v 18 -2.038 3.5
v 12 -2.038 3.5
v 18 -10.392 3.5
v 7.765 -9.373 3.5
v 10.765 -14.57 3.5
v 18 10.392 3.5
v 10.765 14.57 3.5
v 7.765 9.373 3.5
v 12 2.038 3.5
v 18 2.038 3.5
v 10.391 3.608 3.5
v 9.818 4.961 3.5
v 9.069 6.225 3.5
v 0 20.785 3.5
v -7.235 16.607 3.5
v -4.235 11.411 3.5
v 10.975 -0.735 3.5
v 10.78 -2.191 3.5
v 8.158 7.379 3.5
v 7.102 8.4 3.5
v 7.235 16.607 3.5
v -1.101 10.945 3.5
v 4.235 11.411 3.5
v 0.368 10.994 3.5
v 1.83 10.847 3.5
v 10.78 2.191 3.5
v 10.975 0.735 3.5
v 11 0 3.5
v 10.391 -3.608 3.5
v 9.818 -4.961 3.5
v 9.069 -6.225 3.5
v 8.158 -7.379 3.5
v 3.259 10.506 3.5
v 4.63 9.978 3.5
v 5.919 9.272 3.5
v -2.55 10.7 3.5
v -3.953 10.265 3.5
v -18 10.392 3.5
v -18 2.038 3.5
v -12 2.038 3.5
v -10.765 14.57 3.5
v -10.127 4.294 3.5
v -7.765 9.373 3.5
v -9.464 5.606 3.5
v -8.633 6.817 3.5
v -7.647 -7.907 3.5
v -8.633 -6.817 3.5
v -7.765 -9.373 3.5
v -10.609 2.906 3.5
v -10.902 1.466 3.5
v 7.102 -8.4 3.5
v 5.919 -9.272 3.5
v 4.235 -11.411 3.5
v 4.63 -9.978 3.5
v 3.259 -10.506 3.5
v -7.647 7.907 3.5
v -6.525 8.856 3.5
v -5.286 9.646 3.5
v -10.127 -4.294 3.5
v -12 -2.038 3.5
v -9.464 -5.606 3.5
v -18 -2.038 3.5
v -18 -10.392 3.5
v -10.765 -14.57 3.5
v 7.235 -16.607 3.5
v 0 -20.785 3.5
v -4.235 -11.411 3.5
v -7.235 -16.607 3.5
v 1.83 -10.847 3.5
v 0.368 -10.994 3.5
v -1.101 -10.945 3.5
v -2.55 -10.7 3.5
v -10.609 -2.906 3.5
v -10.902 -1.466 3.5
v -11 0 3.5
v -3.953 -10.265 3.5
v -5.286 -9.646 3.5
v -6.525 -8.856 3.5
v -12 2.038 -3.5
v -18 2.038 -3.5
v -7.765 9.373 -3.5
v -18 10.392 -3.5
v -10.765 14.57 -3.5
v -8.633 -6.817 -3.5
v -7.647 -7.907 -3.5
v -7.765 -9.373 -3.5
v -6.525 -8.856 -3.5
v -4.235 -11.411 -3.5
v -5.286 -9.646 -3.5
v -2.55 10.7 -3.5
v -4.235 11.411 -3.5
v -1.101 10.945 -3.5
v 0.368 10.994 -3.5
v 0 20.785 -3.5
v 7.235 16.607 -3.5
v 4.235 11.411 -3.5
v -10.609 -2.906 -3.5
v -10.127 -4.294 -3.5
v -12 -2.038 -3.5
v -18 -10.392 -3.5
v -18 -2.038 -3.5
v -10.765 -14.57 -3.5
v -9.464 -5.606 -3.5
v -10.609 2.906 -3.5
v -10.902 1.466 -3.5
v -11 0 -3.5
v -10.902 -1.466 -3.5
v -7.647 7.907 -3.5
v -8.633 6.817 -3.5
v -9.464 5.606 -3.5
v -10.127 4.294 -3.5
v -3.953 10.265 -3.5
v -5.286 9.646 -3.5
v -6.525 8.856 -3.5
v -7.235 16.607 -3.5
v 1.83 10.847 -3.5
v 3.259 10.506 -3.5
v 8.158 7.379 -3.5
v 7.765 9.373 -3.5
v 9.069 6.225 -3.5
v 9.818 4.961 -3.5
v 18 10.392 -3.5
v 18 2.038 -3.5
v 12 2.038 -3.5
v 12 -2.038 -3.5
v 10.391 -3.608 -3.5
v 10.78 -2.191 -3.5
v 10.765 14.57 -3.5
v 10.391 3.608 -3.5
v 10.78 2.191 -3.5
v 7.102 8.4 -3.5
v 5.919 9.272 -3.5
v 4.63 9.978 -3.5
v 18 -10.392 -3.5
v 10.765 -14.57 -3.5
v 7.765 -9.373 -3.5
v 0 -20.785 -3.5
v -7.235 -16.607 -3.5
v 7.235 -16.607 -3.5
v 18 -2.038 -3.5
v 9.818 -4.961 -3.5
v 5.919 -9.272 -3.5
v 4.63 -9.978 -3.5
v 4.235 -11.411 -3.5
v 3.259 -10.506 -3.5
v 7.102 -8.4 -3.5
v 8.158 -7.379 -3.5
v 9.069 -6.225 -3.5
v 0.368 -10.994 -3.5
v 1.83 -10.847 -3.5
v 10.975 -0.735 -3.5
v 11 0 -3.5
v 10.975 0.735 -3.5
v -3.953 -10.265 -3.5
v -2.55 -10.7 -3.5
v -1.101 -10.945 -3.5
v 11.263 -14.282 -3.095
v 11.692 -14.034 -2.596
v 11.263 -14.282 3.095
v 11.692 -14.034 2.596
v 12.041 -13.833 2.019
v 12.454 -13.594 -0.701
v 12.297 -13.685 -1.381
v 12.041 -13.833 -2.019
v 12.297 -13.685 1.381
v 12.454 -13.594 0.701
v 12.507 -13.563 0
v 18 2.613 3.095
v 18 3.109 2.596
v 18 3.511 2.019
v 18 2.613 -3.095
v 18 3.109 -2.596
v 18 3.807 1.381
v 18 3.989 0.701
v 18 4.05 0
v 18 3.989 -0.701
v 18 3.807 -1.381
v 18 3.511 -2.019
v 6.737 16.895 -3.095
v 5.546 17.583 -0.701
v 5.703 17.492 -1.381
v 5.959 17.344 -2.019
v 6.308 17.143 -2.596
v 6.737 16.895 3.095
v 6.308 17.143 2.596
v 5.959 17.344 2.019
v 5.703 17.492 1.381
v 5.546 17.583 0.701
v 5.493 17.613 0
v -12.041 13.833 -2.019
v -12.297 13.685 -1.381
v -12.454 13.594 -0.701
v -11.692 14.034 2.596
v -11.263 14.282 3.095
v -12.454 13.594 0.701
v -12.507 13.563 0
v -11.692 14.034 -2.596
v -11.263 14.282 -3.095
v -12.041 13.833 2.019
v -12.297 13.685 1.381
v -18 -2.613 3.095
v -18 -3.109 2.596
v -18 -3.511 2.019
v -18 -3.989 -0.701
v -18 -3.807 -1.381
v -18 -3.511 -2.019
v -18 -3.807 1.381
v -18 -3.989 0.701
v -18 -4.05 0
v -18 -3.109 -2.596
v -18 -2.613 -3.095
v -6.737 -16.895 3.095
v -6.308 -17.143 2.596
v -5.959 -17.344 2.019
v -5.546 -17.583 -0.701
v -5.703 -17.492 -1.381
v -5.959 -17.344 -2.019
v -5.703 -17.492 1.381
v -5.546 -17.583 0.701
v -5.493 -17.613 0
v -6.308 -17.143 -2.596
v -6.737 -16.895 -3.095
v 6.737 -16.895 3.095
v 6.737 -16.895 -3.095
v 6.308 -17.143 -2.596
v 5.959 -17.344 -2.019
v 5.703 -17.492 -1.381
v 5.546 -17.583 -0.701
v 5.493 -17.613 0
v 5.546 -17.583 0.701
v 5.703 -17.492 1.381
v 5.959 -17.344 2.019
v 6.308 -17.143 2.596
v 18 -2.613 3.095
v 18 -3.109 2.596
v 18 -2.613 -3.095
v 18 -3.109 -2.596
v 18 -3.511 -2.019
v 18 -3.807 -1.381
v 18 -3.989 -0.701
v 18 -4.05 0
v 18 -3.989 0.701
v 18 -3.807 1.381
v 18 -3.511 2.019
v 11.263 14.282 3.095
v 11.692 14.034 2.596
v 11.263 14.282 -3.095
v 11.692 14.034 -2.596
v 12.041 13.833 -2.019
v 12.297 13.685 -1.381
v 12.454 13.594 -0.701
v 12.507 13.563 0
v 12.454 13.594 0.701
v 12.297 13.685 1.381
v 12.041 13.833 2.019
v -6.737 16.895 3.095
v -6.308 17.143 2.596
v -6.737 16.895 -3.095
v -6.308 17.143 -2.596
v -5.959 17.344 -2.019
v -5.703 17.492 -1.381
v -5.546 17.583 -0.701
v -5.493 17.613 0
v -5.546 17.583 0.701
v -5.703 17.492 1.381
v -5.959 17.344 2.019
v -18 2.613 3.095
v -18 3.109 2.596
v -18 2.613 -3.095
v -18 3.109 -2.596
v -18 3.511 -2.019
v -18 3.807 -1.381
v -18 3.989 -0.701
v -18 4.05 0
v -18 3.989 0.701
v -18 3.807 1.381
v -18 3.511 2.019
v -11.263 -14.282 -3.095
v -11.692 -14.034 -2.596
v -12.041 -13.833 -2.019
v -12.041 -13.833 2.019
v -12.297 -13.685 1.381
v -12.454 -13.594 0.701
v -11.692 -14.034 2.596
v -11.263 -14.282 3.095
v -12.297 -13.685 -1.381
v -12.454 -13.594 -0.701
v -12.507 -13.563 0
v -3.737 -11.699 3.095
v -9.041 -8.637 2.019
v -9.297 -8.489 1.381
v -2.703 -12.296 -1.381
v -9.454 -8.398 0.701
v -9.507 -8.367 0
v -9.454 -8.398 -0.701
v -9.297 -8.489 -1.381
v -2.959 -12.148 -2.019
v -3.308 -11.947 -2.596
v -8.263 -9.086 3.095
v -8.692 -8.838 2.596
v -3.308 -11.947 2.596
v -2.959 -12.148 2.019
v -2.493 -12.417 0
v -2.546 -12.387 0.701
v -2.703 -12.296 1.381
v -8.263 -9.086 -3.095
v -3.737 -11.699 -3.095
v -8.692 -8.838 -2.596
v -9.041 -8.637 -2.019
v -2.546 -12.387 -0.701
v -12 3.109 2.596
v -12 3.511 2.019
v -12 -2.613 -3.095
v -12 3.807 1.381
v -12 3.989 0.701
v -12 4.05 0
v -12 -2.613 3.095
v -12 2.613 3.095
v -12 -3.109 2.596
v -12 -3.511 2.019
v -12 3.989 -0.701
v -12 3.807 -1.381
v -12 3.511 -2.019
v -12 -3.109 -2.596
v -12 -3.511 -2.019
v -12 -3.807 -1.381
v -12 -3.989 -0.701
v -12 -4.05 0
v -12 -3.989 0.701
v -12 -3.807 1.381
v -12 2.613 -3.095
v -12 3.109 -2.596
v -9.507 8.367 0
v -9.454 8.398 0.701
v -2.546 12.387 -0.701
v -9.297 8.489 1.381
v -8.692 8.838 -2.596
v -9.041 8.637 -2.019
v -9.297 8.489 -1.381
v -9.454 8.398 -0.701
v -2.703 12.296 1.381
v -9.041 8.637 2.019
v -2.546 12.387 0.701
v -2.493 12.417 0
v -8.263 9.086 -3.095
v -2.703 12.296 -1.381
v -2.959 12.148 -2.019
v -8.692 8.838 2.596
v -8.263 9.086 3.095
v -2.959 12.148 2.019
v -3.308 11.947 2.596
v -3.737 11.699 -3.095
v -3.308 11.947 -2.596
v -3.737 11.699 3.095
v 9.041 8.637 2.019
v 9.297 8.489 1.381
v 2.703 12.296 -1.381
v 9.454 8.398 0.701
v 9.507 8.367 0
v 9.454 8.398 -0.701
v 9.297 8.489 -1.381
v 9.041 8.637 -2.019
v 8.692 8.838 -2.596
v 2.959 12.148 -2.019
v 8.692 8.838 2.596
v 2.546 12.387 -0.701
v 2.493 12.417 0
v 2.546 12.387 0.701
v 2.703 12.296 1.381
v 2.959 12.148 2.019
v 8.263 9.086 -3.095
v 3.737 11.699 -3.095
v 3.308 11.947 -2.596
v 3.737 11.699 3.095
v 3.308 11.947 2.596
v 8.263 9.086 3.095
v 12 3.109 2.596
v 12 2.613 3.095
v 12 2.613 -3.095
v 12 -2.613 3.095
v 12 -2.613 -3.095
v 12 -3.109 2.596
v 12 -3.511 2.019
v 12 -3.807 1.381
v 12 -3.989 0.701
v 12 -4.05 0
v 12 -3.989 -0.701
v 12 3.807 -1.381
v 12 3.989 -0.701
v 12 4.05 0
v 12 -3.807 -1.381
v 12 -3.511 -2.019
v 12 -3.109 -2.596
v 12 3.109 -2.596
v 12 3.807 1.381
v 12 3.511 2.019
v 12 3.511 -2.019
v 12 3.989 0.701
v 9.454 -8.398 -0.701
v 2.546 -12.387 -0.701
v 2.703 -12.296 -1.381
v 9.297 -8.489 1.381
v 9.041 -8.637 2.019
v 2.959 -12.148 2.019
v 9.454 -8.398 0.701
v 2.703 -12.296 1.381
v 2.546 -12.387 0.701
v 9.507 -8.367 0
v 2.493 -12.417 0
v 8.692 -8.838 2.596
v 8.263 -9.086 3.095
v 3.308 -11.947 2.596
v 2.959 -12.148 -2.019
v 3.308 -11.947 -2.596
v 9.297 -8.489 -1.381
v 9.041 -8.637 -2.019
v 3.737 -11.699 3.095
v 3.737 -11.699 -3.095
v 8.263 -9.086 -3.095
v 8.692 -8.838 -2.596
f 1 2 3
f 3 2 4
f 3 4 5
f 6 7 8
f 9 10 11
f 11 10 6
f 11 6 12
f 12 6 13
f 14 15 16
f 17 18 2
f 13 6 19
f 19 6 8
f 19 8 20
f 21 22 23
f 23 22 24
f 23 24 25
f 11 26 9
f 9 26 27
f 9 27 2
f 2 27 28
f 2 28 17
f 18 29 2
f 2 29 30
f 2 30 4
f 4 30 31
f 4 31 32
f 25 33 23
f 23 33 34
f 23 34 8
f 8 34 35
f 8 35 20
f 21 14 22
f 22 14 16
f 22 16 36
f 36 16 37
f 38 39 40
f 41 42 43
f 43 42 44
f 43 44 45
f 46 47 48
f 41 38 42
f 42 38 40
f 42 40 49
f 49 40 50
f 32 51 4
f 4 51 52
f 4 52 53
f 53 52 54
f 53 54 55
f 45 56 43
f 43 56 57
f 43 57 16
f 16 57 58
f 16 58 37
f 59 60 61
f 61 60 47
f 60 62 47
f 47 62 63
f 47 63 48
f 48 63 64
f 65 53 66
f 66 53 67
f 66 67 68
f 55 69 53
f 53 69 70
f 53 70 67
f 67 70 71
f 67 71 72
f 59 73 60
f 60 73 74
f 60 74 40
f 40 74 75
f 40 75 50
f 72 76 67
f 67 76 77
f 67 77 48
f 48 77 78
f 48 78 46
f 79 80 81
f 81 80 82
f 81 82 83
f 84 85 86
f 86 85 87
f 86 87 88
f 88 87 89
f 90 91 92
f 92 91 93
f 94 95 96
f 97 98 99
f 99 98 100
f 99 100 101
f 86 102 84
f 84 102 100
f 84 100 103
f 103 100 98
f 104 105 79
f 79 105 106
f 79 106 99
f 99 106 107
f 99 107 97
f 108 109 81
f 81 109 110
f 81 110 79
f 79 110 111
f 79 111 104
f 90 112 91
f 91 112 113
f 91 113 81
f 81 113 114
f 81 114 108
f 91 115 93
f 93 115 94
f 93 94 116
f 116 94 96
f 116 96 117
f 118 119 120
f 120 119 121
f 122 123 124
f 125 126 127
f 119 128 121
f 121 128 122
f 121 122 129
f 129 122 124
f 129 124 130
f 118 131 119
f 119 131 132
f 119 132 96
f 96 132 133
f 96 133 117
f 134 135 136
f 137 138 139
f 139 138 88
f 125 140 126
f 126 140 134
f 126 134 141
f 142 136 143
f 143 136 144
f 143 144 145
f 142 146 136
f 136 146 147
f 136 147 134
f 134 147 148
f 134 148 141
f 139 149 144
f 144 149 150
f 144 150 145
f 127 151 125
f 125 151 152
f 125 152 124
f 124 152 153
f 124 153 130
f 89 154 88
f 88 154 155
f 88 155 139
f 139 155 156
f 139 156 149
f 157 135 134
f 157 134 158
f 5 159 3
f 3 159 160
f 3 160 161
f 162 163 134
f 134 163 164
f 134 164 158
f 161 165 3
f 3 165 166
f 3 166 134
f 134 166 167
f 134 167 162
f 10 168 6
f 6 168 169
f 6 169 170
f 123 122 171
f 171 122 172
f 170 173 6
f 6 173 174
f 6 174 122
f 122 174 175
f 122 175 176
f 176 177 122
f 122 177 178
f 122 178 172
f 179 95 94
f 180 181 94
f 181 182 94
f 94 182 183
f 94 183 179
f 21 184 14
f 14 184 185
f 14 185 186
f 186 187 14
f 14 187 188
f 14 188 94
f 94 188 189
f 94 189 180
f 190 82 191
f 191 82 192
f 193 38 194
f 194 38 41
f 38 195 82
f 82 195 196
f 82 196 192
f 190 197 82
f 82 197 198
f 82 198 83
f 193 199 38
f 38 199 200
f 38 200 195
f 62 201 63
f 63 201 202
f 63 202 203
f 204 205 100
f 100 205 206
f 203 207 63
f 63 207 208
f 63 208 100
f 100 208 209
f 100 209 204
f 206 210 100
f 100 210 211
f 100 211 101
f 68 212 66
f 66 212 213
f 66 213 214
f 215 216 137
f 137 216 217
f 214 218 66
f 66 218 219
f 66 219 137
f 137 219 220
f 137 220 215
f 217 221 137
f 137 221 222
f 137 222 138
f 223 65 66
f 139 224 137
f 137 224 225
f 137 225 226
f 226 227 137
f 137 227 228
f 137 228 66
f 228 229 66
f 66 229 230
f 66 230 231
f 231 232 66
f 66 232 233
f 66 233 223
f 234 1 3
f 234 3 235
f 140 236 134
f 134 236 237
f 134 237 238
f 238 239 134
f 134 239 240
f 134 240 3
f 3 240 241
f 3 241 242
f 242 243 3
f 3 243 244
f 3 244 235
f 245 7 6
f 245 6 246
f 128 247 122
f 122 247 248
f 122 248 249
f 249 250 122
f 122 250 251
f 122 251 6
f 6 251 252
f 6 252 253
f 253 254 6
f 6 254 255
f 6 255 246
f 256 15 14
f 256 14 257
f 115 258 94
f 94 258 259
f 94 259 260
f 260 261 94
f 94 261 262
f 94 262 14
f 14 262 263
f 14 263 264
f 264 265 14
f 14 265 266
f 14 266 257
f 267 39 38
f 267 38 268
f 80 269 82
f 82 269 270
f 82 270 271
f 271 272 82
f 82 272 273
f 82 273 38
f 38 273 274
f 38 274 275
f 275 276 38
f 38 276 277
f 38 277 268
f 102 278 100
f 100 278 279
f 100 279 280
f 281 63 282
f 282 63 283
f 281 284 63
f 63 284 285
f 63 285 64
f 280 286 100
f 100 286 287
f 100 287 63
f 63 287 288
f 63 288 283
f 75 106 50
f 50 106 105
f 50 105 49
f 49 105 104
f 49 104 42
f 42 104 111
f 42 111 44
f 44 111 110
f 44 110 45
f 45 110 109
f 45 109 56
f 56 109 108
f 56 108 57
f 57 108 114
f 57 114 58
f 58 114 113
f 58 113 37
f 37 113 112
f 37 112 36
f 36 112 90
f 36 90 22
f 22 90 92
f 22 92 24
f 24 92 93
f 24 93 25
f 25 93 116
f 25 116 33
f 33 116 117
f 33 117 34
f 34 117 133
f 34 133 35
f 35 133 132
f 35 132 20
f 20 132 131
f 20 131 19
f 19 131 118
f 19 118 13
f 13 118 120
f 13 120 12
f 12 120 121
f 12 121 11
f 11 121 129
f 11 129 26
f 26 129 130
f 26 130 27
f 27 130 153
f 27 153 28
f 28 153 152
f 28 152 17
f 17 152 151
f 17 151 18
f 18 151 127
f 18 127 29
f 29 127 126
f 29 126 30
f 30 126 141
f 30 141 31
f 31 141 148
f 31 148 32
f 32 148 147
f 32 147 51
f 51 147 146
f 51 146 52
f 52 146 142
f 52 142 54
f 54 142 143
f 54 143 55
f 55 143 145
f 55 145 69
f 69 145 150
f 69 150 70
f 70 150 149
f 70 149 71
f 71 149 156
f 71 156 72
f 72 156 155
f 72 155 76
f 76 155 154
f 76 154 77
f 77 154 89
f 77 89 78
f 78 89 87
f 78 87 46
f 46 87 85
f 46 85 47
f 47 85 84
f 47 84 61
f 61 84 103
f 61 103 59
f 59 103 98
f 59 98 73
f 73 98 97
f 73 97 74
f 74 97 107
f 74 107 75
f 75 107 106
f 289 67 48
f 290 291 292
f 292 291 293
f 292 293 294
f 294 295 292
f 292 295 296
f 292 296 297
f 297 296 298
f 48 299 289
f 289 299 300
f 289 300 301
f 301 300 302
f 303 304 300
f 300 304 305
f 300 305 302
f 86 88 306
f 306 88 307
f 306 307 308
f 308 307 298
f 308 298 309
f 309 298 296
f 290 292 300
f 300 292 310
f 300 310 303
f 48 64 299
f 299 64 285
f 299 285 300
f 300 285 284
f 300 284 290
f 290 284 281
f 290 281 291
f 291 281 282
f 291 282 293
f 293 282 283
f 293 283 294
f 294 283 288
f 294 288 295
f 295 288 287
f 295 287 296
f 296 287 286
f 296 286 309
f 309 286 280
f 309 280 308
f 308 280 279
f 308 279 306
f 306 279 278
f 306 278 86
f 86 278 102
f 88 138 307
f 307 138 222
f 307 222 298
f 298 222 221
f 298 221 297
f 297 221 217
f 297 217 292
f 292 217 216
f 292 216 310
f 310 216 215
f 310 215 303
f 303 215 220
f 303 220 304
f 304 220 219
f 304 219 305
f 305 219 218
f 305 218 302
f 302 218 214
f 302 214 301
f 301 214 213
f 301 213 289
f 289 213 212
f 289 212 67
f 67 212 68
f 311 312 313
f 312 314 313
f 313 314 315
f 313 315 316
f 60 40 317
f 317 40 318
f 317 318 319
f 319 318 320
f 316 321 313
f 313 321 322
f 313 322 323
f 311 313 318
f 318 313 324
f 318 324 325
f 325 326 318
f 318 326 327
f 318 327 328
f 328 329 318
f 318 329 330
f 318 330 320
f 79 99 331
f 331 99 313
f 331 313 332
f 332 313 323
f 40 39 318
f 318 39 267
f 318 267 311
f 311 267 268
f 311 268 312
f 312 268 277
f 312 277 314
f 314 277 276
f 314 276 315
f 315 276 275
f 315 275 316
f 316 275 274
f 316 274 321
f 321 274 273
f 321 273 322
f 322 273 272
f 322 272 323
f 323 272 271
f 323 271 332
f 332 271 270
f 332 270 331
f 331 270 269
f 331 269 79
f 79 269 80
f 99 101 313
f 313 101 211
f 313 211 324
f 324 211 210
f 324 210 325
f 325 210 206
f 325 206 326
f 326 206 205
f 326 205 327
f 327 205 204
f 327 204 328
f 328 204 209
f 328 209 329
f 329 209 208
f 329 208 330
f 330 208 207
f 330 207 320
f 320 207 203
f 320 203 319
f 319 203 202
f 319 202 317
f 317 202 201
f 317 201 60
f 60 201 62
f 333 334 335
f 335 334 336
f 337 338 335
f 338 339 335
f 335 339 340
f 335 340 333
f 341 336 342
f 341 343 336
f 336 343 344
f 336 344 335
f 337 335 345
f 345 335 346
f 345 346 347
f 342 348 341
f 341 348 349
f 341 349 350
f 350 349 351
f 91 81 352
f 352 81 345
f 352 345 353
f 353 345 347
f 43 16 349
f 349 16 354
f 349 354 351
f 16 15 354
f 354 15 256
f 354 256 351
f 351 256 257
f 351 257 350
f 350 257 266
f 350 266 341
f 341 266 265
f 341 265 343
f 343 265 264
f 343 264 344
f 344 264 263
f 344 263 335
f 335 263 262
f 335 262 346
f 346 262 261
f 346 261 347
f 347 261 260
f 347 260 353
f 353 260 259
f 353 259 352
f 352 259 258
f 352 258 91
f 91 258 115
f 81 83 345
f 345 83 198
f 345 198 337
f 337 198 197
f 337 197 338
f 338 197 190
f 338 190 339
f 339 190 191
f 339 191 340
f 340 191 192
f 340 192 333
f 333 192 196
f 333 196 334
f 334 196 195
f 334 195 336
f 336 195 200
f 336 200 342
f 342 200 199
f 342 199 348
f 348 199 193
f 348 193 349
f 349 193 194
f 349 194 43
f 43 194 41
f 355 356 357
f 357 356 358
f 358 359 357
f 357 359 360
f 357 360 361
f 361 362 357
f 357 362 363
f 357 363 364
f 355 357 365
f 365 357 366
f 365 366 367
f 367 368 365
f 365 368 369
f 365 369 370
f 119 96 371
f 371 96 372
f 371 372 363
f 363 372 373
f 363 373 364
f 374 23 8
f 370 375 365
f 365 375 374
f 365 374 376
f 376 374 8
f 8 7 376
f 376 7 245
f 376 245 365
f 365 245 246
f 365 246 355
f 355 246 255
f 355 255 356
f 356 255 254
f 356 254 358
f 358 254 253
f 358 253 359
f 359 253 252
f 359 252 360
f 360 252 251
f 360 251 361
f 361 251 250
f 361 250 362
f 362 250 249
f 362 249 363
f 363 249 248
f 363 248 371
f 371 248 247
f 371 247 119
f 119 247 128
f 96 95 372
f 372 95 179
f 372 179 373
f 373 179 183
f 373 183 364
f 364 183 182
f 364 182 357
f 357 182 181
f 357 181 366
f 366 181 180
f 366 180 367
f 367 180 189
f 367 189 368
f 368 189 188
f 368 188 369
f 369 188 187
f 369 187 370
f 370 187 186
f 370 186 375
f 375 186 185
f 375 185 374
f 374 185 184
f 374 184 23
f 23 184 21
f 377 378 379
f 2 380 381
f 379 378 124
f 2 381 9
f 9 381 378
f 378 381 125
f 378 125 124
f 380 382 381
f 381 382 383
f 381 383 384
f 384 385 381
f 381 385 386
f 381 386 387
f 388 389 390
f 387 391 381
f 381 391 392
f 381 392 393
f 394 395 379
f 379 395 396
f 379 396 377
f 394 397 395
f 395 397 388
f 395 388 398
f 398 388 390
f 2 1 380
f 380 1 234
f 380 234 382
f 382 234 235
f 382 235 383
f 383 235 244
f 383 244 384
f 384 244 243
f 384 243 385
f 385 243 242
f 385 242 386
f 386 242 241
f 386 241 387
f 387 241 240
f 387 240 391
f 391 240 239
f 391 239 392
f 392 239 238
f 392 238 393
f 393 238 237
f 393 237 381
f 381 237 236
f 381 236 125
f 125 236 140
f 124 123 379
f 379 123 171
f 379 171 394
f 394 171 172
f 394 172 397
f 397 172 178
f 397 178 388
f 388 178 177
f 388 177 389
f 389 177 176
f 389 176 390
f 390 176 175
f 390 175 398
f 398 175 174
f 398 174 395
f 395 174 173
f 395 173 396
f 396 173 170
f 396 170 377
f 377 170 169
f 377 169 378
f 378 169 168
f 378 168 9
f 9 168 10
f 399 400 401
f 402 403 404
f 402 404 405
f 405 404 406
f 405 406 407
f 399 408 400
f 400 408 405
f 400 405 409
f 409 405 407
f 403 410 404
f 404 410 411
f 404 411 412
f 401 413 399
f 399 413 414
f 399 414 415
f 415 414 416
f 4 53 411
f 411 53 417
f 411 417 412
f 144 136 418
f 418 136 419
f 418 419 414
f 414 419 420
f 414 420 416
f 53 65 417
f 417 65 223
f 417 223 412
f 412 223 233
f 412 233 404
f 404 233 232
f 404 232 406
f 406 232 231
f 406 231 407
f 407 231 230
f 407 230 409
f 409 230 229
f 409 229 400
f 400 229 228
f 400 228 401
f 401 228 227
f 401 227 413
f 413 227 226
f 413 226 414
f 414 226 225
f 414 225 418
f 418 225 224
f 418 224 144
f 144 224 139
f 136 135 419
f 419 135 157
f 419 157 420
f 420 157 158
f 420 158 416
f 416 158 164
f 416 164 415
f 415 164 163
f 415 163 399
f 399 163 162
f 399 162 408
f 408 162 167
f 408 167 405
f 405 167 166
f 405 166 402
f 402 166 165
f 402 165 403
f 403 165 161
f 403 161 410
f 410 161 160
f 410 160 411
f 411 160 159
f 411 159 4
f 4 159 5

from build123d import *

# Parameters (mm, degrees)
SKETCH1_R           = 11
BOSS_EXTRUDE1_DEPTH = 3.5
SKETCH2_R           = 4.05
CUT_EXTRUDE3_DEPTH  = 6
CIRPATTERN1_COUNT   = 6


with BuildPart() as part:
    # Sketch1 → Boss-Extrude1 (new, symmetric)
    with BuildSketch(Plane.XY):
        Polygon((18, -10.392304845), (18, 10.392304845), (0, 20.784609691), (-18, 10.392304845), (-18, -10.392304845), (0, -20.784609691), align=None)
        Circle(SKETCH1_R, mode=Mode.SUBTRACT)
    extrude(amount=BOSS_EXTRUDE1_DEPTH, both=True)

    # Sketch2 → Cut-Extrude3 (cut)
    with BuildSketch(Plane(origin=(-12.610372246, -13.50400788, 0), x_dir=(0.8660254037844387, -0.49999999999999983, 0), z_dir=(0.49999999999999983, 0.8660254037844387, 0))):
        with Locations((4.168898776, 0)):
            Circle(SKETCH2_R)
    cut_extrude3 = extrude(amount=CUT_EXTRUDE3_DEPTH, mode=Mode.SUBTRACT)

    # CirPattern1: Cut-Extrude3 ×6 about axis
    cirpattern1_axis = Axis((0, 0, -3.5), (0, 0, 1))
    for i in range(1, CIRPATTERN1_COUNT):
        add(cut_extrude3.rotate(cirpattern1_axis, i * 360 / CIRPATTERN1_COUNT), mode=Mode.SUBTRACT)


solid = part.part
